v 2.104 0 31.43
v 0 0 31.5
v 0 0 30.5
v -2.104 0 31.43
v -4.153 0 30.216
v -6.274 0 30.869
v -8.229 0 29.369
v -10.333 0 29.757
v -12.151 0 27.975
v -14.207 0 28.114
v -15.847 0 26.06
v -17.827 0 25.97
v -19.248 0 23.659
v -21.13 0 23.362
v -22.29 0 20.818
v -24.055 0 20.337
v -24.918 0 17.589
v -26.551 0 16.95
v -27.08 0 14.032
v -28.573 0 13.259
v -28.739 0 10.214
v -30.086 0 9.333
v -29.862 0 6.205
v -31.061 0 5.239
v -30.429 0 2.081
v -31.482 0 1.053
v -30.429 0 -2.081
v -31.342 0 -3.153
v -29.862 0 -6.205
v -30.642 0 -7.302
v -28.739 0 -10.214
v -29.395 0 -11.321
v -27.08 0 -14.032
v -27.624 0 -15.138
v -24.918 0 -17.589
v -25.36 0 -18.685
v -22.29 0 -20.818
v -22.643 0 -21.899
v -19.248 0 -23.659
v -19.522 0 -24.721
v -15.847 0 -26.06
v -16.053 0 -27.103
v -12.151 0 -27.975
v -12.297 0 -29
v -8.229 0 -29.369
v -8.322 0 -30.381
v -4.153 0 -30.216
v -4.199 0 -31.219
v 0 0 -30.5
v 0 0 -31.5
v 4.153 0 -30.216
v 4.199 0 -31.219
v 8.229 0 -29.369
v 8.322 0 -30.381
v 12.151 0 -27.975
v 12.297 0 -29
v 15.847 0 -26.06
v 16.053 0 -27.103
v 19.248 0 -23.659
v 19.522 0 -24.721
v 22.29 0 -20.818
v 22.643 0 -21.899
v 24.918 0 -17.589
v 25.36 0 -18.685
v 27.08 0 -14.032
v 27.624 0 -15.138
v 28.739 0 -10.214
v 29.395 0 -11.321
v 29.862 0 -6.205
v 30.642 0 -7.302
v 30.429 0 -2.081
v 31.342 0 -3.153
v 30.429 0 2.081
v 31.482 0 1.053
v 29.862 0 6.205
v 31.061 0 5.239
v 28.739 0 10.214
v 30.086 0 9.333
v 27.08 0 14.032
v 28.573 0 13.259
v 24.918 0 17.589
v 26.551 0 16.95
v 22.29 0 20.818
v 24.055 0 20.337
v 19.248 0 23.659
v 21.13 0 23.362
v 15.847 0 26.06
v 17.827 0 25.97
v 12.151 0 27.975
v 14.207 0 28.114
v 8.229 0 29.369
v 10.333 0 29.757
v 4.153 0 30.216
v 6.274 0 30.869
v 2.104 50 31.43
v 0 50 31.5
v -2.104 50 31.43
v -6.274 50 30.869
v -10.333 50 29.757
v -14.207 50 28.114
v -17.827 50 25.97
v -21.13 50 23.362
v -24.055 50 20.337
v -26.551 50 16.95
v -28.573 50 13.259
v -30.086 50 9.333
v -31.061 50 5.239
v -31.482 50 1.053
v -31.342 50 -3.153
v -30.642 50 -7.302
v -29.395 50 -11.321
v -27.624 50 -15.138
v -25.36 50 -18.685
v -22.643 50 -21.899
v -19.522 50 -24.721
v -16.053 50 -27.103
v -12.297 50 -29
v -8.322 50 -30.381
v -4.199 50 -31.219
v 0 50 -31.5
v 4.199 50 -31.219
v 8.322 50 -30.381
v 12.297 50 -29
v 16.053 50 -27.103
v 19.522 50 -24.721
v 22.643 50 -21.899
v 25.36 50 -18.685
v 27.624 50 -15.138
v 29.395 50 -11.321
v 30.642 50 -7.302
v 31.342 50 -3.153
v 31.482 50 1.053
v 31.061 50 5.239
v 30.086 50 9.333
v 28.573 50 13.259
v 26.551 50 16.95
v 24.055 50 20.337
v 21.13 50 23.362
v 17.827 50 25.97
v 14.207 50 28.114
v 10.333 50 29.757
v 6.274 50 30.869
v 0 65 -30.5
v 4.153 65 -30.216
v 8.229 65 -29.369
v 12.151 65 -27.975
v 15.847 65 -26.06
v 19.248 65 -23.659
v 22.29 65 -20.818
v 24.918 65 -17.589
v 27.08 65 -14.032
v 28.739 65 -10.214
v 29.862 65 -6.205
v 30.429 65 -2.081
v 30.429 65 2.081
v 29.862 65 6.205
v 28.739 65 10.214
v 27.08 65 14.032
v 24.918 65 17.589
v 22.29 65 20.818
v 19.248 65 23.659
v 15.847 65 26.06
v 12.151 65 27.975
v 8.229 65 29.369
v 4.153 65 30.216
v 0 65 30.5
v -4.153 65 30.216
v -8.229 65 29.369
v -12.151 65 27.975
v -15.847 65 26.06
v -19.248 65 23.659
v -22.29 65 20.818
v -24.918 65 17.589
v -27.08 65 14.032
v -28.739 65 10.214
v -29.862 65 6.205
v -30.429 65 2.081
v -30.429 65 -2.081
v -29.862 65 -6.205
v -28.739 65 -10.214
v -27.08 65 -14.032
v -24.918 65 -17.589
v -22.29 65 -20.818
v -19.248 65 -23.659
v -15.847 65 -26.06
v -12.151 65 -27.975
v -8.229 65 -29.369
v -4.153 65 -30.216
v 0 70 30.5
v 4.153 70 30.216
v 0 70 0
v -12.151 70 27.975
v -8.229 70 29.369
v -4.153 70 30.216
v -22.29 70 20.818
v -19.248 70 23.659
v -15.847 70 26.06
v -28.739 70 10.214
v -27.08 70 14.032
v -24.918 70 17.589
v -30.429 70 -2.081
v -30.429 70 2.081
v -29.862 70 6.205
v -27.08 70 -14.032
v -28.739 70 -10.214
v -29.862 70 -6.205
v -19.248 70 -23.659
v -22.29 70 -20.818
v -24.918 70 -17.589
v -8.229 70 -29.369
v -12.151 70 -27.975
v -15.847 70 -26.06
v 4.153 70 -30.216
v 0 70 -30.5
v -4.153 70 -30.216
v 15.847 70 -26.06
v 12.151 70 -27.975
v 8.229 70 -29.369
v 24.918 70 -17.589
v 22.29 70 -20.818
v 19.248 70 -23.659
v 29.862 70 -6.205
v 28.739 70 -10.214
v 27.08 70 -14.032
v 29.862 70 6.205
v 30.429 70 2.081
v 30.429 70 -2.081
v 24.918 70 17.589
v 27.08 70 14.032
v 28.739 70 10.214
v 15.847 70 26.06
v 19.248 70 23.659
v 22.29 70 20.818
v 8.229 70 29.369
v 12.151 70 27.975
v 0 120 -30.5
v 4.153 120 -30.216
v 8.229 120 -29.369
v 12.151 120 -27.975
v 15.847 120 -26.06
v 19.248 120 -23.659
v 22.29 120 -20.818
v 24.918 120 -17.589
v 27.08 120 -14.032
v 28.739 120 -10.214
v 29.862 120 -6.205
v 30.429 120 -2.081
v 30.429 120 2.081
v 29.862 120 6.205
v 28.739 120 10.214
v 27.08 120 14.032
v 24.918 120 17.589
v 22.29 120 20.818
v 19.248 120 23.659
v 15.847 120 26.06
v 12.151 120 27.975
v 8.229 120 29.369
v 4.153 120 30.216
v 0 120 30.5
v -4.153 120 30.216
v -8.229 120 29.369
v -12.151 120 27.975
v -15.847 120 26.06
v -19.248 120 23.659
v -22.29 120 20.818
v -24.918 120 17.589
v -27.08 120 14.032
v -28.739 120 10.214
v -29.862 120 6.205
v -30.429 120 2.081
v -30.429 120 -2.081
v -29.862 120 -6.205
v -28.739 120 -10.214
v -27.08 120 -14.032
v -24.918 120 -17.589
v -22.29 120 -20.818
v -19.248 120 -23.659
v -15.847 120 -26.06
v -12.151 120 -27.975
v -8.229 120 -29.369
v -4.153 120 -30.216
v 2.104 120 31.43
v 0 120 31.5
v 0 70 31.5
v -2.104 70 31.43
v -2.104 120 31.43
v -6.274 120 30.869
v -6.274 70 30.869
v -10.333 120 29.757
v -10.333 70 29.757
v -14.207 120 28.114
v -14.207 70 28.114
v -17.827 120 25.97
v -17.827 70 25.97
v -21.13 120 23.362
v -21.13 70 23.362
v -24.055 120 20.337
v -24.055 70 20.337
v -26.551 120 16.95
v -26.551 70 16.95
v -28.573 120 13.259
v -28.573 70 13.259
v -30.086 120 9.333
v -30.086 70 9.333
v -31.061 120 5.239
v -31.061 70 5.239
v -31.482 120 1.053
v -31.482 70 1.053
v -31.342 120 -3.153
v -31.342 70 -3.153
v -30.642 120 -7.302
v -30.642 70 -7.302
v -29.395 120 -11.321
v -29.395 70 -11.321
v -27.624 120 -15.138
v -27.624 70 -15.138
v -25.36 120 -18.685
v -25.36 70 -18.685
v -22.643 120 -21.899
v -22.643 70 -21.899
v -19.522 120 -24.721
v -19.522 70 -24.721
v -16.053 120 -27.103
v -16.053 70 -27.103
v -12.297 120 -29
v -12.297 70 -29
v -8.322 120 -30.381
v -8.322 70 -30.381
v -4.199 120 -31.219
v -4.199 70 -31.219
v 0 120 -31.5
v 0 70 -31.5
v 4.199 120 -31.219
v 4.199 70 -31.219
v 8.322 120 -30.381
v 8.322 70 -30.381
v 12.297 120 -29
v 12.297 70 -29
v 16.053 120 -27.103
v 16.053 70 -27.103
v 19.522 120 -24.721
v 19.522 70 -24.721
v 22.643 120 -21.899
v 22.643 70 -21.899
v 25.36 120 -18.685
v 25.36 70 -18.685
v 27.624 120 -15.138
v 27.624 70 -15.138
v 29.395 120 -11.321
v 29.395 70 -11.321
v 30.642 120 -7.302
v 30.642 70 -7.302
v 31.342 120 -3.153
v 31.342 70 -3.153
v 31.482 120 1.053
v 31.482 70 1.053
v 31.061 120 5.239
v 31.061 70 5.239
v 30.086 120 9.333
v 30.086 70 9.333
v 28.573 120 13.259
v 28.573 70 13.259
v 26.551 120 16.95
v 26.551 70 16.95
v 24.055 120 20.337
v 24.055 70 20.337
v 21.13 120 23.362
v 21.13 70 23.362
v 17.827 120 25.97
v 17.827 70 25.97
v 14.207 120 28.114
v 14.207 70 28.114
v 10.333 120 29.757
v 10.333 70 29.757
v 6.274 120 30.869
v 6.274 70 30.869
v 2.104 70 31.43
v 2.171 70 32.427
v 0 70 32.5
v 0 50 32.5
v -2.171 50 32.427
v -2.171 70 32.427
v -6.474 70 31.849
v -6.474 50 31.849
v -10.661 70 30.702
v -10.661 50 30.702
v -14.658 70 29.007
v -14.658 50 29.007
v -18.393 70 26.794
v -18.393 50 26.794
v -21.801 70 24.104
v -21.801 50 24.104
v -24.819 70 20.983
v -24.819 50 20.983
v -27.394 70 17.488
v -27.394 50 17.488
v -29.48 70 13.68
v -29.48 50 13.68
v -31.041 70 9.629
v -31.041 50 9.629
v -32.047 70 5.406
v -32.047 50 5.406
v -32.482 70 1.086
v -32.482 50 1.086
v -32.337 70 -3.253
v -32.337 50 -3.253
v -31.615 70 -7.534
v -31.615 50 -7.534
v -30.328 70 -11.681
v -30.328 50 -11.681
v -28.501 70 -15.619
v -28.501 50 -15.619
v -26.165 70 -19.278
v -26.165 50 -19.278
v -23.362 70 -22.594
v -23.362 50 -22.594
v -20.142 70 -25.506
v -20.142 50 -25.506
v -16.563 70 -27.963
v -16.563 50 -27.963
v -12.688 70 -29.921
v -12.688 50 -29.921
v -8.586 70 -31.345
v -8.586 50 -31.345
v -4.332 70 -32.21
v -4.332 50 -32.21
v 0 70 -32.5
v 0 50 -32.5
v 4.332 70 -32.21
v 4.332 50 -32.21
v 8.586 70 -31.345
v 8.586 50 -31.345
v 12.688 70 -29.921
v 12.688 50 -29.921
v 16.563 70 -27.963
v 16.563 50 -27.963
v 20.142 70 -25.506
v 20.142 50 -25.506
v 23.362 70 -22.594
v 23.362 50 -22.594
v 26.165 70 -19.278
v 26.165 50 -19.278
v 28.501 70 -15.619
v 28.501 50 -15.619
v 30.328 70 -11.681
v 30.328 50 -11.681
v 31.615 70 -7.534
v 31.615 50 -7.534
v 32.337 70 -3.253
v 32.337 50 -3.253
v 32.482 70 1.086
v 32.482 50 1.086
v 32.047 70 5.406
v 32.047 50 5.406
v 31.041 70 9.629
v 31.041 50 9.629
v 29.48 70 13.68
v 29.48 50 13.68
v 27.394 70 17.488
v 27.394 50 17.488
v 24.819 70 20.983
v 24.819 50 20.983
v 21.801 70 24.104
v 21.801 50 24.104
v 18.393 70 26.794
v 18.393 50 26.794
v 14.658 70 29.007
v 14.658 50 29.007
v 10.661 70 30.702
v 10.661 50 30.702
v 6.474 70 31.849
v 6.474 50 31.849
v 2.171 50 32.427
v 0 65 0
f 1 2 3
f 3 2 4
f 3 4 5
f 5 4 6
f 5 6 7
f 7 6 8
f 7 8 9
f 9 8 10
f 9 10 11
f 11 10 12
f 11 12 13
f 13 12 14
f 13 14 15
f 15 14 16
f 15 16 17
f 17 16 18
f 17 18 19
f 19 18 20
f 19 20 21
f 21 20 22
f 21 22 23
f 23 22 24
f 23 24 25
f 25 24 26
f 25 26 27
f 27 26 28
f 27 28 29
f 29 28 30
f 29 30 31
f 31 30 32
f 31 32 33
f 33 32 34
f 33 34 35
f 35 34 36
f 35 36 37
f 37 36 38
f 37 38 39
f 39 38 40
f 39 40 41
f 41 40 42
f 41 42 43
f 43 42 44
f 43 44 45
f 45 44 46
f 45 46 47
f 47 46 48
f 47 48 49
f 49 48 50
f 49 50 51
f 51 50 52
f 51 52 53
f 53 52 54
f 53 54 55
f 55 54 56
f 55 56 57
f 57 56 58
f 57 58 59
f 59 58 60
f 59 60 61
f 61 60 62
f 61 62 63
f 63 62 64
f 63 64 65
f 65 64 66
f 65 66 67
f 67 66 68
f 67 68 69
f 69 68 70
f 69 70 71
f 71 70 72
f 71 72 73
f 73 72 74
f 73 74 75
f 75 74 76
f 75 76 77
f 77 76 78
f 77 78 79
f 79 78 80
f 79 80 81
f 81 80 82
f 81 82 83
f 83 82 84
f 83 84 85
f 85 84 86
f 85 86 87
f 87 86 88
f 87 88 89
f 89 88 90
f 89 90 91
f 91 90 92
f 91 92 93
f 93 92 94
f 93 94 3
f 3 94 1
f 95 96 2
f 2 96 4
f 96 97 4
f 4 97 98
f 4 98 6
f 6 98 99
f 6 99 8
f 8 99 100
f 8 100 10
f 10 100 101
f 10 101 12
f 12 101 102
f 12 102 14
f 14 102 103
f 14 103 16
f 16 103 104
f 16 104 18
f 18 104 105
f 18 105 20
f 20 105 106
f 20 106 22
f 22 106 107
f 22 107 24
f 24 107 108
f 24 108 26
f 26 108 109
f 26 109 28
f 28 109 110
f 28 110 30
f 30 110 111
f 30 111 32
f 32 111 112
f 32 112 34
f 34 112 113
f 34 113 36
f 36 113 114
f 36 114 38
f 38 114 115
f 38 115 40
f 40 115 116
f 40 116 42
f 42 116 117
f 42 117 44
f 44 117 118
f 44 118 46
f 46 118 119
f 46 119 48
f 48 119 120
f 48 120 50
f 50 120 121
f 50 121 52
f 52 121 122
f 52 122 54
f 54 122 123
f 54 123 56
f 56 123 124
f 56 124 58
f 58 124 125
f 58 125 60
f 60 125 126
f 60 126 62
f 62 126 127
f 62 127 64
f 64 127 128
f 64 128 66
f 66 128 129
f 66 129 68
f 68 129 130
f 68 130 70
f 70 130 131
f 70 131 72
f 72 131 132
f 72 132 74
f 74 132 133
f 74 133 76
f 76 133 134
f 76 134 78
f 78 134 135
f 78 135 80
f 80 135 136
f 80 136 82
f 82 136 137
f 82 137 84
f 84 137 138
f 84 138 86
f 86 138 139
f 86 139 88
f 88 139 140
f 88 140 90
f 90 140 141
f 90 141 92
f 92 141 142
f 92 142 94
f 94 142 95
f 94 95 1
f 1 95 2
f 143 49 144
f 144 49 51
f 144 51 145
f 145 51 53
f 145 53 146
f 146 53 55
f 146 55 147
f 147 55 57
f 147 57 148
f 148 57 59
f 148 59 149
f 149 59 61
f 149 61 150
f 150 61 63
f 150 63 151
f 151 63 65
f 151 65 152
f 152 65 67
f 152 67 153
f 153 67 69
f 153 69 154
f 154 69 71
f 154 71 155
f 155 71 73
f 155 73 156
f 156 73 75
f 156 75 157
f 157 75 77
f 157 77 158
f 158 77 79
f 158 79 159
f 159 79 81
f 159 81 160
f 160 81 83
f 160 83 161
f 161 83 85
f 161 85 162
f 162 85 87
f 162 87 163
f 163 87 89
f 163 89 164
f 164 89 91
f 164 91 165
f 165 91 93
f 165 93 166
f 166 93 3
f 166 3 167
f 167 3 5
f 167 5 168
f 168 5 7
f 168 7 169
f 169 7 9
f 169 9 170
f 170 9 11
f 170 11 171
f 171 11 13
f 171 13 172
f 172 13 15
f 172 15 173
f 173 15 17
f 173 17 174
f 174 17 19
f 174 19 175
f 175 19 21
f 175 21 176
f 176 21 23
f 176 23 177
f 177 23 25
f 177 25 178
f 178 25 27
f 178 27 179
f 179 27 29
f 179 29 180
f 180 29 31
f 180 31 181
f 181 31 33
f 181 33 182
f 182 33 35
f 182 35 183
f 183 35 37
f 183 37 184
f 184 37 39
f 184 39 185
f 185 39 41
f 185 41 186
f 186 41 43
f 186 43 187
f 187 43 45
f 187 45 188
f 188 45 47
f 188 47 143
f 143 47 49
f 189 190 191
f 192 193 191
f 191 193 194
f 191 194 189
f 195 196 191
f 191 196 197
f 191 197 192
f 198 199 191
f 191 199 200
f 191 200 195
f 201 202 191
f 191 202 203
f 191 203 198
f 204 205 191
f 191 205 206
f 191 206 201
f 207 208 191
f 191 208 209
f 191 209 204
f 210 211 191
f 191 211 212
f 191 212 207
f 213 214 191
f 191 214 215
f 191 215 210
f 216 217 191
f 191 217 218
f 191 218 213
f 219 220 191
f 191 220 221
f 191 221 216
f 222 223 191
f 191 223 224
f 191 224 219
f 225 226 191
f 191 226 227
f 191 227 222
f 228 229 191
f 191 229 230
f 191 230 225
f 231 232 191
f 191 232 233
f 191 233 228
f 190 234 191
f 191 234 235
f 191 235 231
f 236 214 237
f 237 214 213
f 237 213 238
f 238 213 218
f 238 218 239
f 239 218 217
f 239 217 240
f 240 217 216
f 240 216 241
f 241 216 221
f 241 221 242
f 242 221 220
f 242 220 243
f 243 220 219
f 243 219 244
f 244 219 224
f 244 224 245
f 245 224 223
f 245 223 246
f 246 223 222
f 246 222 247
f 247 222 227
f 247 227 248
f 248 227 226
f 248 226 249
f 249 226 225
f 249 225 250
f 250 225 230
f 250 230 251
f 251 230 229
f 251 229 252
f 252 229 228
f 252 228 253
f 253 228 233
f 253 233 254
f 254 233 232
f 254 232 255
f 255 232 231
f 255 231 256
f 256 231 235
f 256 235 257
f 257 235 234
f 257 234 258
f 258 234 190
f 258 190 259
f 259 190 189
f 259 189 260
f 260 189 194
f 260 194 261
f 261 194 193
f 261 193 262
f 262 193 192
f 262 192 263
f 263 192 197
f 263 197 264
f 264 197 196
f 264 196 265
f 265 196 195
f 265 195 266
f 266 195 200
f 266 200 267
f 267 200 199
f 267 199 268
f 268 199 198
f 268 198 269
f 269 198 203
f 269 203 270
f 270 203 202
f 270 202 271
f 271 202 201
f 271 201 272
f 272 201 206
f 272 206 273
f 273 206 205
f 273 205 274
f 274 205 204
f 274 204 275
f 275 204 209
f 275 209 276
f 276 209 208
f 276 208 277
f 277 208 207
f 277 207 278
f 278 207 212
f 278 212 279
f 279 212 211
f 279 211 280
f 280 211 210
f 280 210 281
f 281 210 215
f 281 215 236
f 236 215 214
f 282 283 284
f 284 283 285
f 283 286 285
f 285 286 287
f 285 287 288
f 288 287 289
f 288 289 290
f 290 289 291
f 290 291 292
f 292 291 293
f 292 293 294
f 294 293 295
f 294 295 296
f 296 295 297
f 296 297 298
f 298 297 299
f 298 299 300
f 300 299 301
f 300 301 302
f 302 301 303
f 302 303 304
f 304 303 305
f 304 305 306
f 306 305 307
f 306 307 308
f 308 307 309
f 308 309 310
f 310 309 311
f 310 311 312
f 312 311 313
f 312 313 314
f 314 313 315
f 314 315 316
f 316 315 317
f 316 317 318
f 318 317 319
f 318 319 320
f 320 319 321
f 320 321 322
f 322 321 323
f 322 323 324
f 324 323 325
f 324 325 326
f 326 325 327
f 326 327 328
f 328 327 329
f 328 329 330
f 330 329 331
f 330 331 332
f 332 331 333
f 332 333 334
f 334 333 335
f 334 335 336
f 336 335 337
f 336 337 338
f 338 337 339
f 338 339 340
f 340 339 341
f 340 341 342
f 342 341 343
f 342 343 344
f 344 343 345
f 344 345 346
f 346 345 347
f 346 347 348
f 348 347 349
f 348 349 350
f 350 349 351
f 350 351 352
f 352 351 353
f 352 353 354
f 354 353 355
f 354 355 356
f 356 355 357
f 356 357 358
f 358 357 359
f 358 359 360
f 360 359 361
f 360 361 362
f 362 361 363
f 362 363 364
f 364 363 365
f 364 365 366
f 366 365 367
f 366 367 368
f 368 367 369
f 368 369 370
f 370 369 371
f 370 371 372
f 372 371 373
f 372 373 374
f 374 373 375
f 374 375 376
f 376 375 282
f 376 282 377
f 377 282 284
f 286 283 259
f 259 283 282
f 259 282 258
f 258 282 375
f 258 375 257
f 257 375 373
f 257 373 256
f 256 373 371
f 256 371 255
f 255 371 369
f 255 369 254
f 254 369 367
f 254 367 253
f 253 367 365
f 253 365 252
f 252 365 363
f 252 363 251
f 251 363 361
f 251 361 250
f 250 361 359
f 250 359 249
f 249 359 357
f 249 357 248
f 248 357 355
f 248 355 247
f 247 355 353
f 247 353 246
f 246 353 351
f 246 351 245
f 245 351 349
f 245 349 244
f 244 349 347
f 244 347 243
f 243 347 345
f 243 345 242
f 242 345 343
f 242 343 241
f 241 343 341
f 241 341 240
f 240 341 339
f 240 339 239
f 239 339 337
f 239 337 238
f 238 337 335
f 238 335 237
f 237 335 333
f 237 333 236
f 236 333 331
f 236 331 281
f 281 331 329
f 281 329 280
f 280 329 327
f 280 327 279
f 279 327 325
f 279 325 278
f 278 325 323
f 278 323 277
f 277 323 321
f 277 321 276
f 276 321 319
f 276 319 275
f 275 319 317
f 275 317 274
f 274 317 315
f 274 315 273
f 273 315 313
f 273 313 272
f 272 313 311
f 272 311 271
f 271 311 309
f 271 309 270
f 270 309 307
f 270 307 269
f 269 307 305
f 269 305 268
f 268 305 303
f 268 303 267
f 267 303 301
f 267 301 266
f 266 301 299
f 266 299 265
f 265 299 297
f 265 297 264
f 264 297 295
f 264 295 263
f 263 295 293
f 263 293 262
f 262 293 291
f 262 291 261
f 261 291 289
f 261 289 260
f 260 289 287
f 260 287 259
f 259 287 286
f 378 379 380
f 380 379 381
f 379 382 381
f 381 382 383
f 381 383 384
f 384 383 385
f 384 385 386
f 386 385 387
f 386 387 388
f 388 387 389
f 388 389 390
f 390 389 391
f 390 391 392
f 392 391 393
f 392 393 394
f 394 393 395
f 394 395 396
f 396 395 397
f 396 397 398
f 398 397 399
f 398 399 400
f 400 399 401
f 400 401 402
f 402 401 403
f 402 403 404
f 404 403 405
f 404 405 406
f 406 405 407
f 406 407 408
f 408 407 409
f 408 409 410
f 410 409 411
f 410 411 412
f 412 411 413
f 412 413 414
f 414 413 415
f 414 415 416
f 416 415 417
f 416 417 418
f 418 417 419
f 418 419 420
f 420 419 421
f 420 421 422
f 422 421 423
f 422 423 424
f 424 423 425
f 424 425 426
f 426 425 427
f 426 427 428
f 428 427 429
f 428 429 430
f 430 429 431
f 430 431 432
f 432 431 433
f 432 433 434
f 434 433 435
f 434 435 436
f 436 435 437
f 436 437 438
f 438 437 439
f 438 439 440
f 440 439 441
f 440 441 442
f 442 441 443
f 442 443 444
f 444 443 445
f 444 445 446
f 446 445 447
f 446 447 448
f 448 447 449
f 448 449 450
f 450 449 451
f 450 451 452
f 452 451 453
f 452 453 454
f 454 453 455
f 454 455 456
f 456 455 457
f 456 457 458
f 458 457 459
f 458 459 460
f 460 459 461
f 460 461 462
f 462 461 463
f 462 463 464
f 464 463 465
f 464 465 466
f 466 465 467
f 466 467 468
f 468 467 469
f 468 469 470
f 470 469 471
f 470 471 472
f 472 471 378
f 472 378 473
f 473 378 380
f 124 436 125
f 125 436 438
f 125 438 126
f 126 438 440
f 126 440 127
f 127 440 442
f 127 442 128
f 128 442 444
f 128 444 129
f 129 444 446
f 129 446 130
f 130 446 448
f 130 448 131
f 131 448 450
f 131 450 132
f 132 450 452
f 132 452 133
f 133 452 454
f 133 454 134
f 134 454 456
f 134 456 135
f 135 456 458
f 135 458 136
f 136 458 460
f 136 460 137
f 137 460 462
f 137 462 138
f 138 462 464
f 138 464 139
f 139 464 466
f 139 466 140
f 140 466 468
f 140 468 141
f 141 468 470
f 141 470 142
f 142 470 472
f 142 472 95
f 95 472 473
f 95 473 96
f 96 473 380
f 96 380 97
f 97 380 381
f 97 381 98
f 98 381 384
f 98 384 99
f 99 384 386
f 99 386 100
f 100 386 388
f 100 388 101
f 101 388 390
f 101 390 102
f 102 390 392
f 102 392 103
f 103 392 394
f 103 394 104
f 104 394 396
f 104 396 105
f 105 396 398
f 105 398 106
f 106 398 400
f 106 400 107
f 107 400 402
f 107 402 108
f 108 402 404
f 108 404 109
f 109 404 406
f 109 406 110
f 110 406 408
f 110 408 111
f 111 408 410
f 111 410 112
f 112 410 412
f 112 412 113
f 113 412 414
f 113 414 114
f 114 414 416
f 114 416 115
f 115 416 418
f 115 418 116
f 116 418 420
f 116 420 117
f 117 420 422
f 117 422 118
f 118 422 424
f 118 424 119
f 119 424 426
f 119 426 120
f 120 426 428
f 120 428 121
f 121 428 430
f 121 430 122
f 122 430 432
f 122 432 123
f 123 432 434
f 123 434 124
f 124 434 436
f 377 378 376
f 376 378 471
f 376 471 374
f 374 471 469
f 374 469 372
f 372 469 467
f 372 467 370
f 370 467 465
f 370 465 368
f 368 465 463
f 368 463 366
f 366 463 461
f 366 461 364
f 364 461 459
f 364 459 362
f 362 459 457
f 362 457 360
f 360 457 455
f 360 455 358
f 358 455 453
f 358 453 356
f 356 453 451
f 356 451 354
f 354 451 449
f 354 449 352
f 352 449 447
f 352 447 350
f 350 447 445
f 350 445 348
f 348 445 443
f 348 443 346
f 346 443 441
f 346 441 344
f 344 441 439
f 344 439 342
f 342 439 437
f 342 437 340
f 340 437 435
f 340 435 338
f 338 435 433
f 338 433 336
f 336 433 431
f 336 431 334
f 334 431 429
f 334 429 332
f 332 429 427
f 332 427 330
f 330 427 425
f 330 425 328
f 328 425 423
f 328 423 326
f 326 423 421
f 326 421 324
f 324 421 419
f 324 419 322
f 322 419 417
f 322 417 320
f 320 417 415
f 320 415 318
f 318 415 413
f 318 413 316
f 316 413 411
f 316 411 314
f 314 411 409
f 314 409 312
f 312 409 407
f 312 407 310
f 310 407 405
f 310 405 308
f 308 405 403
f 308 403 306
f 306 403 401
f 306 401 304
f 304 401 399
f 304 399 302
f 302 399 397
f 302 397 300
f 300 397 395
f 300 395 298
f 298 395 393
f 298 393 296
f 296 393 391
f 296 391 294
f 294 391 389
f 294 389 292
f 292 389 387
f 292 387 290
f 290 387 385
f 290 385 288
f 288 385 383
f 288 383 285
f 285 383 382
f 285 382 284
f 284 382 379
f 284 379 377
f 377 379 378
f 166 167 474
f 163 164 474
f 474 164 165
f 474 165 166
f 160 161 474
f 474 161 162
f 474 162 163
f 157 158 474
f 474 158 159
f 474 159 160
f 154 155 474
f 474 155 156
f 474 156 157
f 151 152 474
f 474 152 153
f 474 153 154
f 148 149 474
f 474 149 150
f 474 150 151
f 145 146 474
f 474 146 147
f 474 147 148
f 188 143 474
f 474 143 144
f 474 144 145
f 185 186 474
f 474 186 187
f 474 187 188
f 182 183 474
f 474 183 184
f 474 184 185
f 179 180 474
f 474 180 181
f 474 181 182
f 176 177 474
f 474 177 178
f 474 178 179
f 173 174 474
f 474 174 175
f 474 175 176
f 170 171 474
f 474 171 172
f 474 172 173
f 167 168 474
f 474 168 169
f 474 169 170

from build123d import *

# Parameters (mm, degrees)
ESBO_O1_R                = 31.5
ESBO_O1_R_2              = 30.5
RESSALTO_EXTRUS_O1_DEPTH = 50
ESBO_O2_R                = 32.5
ESBO_O2_R_2              = 30.5
RESSALTO_EXTRUS_O2_DEPTH = 20
ESBO_O3_R                = 31.5
ESBO_O3_R_2              = 30.5
RESSALTO_EXTRUS_O3_DEPTH = 50
RESSALTO_EXTRUS_O4_START = -5
ESBO_O6_R                = 30.5
RESSALTO_EXTRUS_O4_DEPTH = 5


with BuildPart() as part:
    # Esboço1 → Ressalto-extrusão1 (new body)
    with BuildSketch(Plane(origin=(0, 0, 0), x_dir=(1, 0, 0), z_dir=(0, 1, 0))):
        with Locations(Location((0, 0, 0), (0, 0, 270))):
            Circle(ESBO_O1_R)
        with Locations(Location((0, 0, 0), (0, 0, 270))):
            Circle(ESBO_O1_R_2, mode=Mode.SUBTRACT)
    extrude(amount=RESSALTO_EXTRUS_O1_DEPTH)


with BuildPart() as body_2:
    # Esboço2 → Ressalto-extrusão2 (new body)
    with BuildSketch(Plane(origin=(0, 50, 0), x_dir=(1, 0, 0), z_dir=(0, 1, 0))):
        with Locations(Location((0, 0, 0), (0, 0, 270))):
            Circle(ESBO_O2_R)
        with Locations(Location((0, 0, 0), (0, 0, 270))):
            Circle(ESBO_O2_R_2, mode=Mode.SUBTRACT)
    extrude(amount=RESSALTO_EXTRUS_O2_DEPTH)



with BuildPart() as body_3:
    # Esboço3 → Ressalto-extrusão3 (new body)
    with BuildSketch(Plane(origin=(0, 70, 0), x_dir=(1, 0, 0), z_dir=(0, 1, 0))):
        with Locations(Location((0, 0, 0), (0, 0, 270))):
            Circle(ESBO_O3_R)
        with Locations(Location((0, 0, 0), (0, 0, 270))):
            Circle(ESBO_O3_R_2, mode=Mode.SUBTRACT)
    extrude(amount=RESSALTO_EXTRUS_O3_DEPTH)


with BuildPart() as body_2_1:
    add(body_2.part)

    add(body_3.part)  # Ressalto-extrusão4 merges body 3
    # Esboço6 → Ressalto-extrusão4 (add)
    with BuildSketch(Plane(origin=(0, 70, 0), x_dir=(1, 0, 0), z_dir=(0, 1, 0)).offset(RESSALTO_EXTRUS_O4_START)):
        with Locations(Location((0, 0, 0), (0, 0, 270))):
            Circle(ESBO_O6_R)
    extrude(amount=RESSALTO_EXTRUS_O4_DEPTH)


with BuildPart() as part_1:
    add(part.part)

    # Combinar3: union body 2
    add(body_2_1.part)


solid = part_1.part
